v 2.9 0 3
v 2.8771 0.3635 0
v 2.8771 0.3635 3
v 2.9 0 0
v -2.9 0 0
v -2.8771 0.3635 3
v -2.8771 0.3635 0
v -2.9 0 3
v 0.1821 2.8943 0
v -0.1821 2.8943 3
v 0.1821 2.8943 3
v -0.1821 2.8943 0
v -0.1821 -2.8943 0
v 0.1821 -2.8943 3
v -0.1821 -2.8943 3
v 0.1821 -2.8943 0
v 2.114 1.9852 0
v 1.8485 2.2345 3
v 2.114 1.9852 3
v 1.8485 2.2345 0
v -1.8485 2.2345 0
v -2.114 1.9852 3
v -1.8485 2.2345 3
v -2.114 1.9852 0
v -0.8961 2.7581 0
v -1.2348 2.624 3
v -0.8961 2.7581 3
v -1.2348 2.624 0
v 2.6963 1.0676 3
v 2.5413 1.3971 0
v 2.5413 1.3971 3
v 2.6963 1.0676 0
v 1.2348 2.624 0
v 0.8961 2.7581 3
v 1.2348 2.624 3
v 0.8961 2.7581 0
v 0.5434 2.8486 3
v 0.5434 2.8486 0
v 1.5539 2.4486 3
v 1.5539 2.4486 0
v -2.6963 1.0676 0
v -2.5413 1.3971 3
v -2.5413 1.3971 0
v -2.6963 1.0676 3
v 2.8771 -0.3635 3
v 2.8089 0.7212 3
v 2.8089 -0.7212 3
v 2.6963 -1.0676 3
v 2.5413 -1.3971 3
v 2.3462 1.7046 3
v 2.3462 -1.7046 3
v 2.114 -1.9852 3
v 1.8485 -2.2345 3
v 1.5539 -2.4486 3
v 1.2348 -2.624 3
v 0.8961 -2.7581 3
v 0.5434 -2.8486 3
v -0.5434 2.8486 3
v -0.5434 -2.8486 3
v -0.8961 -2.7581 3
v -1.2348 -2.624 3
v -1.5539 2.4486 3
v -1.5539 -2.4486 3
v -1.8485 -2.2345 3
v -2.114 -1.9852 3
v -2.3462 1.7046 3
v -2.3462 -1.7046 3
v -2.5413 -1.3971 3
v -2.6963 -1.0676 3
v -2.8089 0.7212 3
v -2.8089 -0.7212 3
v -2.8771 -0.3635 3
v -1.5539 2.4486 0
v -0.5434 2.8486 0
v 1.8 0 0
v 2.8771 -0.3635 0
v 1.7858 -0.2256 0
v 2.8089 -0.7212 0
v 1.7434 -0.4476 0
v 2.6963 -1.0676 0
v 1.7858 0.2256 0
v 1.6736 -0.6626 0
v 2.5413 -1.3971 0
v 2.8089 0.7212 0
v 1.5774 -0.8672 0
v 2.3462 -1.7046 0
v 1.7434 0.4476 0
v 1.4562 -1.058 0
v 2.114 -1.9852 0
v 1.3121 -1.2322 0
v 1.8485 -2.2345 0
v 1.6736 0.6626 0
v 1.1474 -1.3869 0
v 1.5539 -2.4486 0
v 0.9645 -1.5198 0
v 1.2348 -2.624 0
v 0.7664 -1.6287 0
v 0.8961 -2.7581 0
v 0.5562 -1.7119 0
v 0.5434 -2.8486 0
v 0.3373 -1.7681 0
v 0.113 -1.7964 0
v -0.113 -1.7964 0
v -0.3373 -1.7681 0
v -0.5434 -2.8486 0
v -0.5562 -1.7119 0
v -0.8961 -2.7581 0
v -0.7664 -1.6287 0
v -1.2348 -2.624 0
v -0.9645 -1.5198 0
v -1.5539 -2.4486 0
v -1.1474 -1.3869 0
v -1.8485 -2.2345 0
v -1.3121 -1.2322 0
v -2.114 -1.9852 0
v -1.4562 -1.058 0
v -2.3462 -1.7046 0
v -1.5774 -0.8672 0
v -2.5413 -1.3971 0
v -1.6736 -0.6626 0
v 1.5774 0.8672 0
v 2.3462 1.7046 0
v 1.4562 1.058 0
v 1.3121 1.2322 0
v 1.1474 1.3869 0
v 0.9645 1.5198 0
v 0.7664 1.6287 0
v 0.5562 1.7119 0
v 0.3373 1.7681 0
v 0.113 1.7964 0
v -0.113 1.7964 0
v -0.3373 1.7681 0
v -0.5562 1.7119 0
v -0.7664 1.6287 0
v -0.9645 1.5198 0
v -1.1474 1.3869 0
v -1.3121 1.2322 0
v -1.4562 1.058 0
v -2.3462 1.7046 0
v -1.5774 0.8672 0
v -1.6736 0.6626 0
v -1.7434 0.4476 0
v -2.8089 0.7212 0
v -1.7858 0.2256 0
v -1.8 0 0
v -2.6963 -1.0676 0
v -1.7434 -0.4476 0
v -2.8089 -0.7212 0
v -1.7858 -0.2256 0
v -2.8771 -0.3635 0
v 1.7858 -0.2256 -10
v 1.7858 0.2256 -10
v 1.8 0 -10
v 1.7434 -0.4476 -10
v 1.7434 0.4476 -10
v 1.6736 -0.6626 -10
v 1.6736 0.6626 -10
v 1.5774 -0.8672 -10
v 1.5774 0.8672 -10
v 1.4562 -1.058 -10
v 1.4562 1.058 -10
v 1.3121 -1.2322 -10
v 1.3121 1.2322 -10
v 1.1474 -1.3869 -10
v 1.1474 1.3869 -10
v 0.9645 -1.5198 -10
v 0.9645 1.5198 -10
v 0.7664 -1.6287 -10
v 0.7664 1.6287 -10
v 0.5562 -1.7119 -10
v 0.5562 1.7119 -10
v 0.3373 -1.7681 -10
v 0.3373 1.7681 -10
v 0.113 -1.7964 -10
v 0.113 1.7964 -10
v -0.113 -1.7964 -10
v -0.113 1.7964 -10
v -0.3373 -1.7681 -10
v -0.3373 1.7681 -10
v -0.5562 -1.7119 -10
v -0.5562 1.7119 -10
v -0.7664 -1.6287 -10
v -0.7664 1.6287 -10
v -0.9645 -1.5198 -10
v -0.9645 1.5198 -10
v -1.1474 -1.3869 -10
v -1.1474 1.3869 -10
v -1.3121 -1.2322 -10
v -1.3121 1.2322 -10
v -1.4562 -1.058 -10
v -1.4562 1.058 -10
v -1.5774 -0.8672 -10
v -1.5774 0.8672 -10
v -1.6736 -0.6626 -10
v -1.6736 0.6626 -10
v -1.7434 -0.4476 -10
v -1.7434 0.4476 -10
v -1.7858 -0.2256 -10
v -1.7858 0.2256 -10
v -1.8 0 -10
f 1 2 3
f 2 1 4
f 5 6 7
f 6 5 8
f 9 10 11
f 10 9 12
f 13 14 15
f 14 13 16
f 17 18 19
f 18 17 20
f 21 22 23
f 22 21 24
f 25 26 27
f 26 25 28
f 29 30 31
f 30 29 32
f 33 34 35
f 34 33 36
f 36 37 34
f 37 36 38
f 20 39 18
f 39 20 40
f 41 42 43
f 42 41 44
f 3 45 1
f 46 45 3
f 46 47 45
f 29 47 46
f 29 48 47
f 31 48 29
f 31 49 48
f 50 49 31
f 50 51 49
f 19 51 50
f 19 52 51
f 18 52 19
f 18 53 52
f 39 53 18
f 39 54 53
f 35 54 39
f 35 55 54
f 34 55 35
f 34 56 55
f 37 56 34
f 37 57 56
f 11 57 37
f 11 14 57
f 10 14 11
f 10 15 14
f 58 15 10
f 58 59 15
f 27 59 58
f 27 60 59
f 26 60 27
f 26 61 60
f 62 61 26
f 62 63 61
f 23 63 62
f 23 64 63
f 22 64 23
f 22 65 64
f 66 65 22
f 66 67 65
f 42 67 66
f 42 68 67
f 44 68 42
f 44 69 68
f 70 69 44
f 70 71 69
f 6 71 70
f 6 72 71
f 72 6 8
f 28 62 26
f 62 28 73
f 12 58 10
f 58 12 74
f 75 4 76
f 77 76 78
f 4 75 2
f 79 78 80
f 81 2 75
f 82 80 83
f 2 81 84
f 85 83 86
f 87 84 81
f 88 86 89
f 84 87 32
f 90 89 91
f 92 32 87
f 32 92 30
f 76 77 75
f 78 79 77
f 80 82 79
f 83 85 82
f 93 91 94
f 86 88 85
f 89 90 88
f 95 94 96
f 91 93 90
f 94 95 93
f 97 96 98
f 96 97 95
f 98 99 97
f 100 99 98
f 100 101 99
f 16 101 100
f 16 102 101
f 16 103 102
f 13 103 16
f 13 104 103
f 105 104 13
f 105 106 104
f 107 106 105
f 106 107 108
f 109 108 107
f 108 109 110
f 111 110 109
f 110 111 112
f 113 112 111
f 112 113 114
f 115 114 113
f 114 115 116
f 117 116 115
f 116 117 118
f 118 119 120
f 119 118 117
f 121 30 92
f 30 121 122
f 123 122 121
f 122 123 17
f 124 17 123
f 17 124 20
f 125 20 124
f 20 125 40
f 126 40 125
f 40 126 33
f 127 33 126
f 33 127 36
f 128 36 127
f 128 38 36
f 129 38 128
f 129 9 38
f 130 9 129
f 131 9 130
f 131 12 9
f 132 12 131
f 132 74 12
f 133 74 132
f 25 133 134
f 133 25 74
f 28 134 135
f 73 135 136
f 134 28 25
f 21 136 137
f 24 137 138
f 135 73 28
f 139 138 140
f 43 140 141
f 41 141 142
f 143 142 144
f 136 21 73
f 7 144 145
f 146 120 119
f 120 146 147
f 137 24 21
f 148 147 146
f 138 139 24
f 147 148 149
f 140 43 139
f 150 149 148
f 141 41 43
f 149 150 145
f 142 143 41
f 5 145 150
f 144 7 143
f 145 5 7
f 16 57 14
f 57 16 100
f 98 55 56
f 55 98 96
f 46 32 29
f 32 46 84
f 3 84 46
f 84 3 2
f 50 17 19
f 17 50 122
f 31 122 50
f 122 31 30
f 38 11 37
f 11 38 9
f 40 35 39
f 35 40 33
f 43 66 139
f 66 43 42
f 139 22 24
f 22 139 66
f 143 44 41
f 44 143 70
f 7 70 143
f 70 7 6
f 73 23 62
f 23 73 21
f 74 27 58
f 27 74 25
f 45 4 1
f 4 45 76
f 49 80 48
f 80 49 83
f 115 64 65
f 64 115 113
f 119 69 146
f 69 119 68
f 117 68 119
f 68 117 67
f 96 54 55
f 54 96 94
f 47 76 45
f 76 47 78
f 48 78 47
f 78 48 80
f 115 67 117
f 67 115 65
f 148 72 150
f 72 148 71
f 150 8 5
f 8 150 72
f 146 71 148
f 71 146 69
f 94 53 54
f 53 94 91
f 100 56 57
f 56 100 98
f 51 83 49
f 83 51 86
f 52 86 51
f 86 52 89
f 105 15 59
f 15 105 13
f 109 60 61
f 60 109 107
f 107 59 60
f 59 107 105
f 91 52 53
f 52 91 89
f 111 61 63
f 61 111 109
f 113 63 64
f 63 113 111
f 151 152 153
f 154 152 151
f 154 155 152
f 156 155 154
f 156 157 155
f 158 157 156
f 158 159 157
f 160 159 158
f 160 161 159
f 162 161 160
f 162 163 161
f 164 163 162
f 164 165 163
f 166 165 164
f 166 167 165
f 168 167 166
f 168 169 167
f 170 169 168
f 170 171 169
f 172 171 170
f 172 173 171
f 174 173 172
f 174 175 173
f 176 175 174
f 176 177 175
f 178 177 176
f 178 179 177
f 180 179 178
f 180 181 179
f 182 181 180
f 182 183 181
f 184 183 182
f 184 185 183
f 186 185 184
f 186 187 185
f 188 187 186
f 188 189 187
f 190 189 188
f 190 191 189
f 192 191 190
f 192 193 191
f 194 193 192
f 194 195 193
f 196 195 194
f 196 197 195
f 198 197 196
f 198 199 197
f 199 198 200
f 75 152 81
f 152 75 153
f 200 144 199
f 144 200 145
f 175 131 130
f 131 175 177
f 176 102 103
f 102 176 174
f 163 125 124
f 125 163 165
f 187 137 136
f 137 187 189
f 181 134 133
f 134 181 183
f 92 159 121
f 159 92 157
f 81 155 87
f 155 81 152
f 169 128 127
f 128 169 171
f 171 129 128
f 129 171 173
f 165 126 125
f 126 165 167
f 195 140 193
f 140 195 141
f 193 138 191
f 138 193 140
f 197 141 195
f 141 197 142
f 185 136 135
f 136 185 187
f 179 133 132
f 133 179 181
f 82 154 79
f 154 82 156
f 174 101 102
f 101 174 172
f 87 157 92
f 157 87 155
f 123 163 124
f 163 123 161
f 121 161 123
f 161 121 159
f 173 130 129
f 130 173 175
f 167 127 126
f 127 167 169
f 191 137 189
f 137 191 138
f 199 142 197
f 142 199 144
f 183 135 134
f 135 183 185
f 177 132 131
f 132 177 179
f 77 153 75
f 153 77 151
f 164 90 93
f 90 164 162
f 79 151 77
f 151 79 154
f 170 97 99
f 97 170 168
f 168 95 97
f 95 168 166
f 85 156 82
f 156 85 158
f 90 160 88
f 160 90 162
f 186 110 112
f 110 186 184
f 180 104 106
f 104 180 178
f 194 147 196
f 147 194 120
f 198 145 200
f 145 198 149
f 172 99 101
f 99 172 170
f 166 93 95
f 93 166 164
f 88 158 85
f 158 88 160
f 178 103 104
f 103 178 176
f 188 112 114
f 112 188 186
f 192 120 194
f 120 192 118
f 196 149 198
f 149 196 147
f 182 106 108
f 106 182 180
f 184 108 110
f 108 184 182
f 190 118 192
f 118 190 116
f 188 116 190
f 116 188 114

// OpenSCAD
$fn = 50;


difference() {
	union() {
		translate(v = [0, 0, 0]) {
			rotate(a = [0, 0, 0]) {
				difference() {
					union() {
						cylinder(h = 3, r = 2.9000000000);
						translate(v = [0, 0, -10.0000000000]) {
							cylinder(h = 10, r = 1.5000000000);
						}
						translate(v = [0, 0, -10.0000000000]) {
							cylinder(h = 10, r = 1.8000000000);
						}
						translate(v = [0, 0, -10.0000000000]) {
							cylinder(h = 10, r = 1.5000000000);
						}
					}
					union();
				}
			}
		}
	}
	union();
}
